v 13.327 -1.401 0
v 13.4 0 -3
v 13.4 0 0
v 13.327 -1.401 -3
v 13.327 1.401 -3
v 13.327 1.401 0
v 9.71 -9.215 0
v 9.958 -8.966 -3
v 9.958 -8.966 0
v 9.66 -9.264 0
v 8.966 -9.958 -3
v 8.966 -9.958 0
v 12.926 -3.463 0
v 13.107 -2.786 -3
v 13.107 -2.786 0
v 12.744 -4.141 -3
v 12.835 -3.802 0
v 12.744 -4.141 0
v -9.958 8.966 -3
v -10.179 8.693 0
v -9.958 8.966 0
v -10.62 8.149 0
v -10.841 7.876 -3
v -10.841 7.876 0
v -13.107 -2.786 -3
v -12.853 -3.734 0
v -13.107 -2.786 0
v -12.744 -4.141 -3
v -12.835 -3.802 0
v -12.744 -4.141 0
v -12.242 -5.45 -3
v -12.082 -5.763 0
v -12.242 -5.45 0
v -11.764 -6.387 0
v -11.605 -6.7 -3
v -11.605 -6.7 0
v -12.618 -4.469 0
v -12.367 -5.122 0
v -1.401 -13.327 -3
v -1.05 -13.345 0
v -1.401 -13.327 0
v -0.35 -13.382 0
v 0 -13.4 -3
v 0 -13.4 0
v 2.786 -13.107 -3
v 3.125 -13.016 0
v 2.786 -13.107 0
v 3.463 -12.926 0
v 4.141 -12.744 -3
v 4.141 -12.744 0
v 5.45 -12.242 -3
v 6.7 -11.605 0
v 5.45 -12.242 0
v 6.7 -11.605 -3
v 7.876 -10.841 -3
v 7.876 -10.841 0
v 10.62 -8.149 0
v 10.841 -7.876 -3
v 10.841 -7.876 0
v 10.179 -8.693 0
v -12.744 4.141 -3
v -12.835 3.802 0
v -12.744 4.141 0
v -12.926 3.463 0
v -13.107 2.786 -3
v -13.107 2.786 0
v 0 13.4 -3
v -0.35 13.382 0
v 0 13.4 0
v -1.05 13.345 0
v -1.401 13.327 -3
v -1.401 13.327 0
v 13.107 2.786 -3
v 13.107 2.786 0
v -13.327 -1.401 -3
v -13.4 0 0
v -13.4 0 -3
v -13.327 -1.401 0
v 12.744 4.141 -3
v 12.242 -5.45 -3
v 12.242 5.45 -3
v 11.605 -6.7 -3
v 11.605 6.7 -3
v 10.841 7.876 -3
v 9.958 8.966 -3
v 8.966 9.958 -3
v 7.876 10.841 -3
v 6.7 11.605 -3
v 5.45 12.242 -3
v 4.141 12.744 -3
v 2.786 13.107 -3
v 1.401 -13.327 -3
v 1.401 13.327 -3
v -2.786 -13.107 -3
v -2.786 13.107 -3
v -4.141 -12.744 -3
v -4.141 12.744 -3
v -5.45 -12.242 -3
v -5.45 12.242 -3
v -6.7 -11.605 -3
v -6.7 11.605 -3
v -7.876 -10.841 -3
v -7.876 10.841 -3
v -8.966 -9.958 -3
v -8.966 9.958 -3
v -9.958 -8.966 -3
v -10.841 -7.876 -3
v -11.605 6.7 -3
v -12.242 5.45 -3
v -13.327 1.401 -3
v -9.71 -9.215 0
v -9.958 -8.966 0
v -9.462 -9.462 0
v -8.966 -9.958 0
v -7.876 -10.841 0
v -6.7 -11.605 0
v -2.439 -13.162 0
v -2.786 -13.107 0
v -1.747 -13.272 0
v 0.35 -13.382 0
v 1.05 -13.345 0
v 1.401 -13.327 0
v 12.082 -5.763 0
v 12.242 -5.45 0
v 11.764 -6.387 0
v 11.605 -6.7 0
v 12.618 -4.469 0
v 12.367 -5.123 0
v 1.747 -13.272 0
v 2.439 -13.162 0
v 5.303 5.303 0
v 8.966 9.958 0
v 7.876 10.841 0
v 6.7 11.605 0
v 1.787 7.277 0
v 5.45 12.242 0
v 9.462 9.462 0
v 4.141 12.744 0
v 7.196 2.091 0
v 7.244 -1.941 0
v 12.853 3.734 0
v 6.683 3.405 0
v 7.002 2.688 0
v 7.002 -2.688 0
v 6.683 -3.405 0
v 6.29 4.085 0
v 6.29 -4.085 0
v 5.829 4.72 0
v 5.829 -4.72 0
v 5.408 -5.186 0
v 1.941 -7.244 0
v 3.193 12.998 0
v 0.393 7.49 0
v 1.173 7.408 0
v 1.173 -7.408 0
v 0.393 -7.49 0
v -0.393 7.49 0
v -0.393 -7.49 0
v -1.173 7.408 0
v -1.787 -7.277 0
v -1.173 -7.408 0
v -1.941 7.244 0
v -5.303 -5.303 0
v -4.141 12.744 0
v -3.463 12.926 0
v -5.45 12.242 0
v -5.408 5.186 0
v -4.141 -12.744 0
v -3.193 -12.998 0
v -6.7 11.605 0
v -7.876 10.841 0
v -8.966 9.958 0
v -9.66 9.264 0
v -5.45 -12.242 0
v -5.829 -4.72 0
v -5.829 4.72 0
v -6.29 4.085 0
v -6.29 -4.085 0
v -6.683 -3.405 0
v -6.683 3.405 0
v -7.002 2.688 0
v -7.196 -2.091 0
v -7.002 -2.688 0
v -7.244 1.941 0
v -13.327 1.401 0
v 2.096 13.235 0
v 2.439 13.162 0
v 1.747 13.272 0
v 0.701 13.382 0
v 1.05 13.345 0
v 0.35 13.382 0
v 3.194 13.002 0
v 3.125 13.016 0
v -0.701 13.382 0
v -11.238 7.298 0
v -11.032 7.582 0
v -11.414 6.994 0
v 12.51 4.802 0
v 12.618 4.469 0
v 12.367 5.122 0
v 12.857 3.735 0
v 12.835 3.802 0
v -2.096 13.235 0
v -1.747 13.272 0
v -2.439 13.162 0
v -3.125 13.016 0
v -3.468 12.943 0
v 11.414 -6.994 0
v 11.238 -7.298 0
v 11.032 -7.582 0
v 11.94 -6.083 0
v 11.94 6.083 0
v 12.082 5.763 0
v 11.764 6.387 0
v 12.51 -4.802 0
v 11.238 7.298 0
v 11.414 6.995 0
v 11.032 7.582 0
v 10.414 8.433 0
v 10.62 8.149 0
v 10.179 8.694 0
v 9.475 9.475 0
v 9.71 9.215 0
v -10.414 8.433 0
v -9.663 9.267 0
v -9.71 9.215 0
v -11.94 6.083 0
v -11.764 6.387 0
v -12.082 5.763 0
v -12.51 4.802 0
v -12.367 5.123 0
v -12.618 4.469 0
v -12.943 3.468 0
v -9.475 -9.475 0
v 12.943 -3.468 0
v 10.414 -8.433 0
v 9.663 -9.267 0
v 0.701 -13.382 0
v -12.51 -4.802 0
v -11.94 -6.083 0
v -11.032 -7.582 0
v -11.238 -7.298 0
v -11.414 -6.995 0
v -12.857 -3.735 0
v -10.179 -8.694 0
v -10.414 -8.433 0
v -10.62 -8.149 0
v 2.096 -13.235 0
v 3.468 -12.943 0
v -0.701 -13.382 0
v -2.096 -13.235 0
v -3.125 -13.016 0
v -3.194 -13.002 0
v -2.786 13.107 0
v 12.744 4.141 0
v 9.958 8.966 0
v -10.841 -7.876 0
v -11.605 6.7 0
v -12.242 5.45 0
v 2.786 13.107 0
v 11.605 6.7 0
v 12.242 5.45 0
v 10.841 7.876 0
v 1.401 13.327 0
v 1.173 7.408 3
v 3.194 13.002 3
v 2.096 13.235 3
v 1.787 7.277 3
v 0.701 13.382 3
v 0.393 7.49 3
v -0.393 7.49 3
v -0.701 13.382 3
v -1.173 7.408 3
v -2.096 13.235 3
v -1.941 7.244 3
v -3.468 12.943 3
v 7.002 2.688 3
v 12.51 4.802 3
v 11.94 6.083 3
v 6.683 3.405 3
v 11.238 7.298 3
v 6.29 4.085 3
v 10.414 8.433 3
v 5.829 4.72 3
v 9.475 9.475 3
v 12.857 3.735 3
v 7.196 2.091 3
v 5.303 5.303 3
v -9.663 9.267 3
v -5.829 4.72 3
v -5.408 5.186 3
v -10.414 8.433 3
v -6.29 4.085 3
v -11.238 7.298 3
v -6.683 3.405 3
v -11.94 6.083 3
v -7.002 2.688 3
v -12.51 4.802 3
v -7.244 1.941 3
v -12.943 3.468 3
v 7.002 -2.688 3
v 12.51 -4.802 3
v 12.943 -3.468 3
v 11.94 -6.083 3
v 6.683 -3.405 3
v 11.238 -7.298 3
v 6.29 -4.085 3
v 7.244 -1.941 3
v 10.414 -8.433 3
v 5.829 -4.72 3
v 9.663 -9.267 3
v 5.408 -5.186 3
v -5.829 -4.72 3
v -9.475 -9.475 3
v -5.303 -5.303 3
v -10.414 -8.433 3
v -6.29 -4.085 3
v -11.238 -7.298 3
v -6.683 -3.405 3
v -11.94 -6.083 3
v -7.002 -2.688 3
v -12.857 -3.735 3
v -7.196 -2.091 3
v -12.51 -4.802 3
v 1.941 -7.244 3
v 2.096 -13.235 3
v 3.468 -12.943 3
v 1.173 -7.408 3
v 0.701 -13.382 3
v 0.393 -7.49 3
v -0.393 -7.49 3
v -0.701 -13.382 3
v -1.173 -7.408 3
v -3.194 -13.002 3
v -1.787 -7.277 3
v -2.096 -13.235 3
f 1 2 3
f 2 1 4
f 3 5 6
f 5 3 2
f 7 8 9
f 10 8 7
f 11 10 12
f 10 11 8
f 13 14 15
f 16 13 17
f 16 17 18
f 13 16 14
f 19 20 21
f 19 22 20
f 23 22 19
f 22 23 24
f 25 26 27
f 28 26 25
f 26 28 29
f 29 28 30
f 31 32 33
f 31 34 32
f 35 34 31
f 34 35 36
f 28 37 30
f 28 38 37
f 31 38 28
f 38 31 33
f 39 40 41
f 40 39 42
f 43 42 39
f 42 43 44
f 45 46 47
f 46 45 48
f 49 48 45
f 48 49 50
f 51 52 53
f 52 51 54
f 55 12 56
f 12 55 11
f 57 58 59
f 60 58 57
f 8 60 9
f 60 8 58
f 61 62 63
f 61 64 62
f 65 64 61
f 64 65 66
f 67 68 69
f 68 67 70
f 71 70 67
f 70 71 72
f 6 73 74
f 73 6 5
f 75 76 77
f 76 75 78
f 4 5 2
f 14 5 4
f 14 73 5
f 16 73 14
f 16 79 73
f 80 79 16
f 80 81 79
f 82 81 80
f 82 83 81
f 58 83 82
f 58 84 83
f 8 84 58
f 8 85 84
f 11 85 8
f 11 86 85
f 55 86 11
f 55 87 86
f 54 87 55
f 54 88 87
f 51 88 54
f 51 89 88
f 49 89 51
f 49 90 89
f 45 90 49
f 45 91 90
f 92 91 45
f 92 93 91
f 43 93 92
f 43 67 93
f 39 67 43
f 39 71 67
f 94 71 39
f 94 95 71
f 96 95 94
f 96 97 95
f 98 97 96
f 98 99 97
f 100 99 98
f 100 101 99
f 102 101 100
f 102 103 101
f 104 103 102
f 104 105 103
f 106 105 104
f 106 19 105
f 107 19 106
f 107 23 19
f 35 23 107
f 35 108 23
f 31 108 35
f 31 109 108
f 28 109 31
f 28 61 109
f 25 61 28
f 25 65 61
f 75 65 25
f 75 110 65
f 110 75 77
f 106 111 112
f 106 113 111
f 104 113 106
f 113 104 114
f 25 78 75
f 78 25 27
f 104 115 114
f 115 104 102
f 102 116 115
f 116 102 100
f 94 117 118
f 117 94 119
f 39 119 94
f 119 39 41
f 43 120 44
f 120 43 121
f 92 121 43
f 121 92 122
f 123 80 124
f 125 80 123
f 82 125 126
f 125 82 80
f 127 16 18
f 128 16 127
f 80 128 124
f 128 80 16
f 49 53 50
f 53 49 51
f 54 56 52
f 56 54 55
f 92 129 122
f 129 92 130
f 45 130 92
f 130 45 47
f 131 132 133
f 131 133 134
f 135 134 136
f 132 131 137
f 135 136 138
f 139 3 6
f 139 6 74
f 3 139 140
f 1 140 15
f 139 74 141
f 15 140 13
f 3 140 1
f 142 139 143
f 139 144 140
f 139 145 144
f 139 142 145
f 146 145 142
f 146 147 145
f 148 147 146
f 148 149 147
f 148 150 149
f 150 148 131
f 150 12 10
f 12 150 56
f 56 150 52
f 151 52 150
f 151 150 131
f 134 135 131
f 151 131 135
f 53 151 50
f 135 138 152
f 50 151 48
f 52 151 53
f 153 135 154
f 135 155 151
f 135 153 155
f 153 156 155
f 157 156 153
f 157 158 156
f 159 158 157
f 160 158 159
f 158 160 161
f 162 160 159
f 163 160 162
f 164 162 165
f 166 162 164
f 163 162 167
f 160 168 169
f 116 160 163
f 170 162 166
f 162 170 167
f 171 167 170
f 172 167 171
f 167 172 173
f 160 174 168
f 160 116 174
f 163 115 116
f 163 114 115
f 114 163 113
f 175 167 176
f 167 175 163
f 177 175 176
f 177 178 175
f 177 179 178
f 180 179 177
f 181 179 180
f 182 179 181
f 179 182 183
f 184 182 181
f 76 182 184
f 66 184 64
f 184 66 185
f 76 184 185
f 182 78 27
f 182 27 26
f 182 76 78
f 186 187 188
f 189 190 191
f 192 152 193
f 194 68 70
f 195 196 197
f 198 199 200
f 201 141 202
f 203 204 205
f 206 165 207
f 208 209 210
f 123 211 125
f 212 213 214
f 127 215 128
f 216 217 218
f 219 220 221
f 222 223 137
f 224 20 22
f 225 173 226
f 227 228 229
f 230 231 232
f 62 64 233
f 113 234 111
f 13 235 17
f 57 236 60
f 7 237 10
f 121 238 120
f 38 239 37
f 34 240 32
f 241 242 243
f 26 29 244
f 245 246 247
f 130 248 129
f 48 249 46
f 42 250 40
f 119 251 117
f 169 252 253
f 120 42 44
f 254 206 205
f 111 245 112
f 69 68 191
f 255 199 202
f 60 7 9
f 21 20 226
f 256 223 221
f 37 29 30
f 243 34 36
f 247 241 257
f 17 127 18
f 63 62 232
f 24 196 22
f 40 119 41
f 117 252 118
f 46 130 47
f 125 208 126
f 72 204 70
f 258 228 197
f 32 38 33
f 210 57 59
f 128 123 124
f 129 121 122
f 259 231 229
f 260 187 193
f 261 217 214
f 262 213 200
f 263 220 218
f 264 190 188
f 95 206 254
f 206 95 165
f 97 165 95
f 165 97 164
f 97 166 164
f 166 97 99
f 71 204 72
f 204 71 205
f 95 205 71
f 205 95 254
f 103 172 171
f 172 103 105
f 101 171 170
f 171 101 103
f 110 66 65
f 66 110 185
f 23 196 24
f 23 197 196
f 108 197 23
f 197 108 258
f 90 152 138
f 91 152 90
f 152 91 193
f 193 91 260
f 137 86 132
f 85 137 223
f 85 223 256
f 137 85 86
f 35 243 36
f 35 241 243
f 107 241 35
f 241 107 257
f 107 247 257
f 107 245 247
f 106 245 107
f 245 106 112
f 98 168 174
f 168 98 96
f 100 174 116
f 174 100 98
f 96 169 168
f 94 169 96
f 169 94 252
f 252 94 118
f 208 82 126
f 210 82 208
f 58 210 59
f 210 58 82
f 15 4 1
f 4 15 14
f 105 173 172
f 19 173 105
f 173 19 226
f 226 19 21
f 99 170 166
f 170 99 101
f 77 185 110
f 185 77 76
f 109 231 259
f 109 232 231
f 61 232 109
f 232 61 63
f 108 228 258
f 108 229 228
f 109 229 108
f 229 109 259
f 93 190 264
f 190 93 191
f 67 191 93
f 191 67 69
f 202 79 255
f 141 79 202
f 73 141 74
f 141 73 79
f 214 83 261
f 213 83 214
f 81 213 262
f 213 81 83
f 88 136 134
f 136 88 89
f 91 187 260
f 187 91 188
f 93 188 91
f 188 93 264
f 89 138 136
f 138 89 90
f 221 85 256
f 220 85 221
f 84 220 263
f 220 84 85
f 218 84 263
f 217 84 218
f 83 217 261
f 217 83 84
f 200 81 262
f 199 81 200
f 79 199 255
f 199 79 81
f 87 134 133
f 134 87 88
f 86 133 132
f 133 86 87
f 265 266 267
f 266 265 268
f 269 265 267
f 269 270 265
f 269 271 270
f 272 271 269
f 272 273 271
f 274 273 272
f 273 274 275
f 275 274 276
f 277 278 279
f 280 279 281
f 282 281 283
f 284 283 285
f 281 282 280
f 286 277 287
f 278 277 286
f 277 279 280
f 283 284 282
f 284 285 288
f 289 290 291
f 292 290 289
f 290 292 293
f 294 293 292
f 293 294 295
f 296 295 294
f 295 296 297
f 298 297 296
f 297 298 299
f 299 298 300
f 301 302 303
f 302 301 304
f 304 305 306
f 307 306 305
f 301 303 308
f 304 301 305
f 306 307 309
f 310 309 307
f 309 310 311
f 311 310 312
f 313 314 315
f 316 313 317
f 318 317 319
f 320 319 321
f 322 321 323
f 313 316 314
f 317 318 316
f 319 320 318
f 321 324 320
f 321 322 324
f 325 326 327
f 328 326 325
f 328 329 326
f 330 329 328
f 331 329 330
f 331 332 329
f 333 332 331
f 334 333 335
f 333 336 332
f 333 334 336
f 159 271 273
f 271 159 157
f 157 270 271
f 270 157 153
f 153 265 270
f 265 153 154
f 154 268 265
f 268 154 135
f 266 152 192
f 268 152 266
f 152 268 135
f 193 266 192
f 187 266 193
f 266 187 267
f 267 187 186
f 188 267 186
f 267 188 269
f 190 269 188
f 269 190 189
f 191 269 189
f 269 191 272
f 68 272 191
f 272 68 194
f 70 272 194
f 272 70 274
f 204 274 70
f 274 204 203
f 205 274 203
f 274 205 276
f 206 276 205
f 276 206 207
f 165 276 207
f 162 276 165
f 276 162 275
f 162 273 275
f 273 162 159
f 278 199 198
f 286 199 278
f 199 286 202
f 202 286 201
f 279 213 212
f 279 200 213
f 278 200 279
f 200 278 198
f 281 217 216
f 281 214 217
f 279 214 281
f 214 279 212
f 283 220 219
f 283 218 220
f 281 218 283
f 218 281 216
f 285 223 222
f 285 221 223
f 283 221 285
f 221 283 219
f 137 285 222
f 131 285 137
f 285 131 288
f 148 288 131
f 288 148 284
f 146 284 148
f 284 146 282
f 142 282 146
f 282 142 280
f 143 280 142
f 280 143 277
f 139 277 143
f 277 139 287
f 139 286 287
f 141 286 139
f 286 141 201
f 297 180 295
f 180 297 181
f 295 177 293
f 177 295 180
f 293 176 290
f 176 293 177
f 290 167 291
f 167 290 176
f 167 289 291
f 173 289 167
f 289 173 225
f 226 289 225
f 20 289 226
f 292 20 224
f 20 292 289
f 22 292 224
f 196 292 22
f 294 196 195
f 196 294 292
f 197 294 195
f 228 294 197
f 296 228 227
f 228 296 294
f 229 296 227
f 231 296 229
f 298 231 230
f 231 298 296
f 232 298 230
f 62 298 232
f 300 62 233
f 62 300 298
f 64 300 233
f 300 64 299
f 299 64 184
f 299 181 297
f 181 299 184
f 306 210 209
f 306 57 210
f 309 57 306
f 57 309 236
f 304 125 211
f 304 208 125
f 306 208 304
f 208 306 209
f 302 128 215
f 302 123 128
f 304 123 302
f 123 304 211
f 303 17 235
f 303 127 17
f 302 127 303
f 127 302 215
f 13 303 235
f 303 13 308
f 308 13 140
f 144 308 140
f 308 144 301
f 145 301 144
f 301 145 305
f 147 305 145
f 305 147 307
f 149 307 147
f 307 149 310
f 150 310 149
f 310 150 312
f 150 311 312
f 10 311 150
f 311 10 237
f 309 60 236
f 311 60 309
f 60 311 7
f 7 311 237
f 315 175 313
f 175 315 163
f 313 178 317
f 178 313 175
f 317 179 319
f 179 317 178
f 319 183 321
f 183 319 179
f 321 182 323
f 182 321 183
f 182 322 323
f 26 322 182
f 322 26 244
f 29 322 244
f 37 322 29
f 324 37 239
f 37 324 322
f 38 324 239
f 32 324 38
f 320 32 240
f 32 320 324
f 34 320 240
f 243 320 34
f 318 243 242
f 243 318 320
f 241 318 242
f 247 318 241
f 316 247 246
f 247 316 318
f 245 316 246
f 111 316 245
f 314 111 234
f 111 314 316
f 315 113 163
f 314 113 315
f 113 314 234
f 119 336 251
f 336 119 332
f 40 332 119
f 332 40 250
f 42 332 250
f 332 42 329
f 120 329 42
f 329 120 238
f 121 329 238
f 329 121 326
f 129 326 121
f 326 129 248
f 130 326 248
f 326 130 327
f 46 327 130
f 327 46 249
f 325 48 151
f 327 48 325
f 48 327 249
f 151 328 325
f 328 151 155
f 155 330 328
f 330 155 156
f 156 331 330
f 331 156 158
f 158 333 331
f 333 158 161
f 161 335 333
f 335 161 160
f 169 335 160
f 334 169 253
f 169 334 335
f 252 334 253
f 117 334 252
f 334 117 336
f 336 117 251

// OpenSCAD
/*
Copyright 2017 Trashbots Inc.

Licensed under the Apache License, Version 2.0 (the "License");
you may not use this file except in compliance with the License.
You may obtain a copy of the License at

    http://www.apache.org/licenses/LICENSE-2.0

Unless required by applicable law or agreed to in writing, software
distributed under the License is distributed on an "AS IS" BASIS,
WITHOUT WARRANTIES OR CONDITIONS OF ANY KIND, either express or implied.
See the License for the specific language governing permissions and
limitations under the License.
*/

$fn = 60;

// rotate (-step/4) translate([0,0,-baseHieght]) linear_extrude(baseHieght) circle(d=diameter);

module circlePegs (pegs = 6, diameter = 26.8, innerDiameter = 15, height = 3, fudge = 1.04) {
    step        = 360 / pegs;

    // Additional amount keeps the plug from binding too hard when 
    // pluged into a complimentary part.
    halfStep    = (step / 2) * fudge;
    radius      = (diameter / 2);
    pegHeight   = height;
    
    rotate (-step/4) 
    linear_extrude(height=pegHeight) 
    difference () {
        difference() {
            circle(d=diameter);
            circle(d=innerDiameter);
        }
        for (i = [0:step:360]) {
            // The diameter is used so the triangle is much longer than the edges need
            // but long enough to clear out the entire wedge.
            polygon([
                    [0,0],
                    [diameter * cos(i), diameter * sin(i) ],
                    [diameter * cos(i + (halfStep)), diameter * sin(i+(halfStep)) ]
                    ]);
        }
    }
}


module circlePegsWithBase(pegs = 6, diameter = 26.8, innerDiameter = 15, heigth = 6) {
    baseHieght  = heigth / 2;

    translate([0,0,-baseHieght]) linear_extrude(heigth/2) circle(d=diameter);
    circlePegs(pegs, diameter, innerDiameter, heigth/2);
}


circlePegsWithBase();
